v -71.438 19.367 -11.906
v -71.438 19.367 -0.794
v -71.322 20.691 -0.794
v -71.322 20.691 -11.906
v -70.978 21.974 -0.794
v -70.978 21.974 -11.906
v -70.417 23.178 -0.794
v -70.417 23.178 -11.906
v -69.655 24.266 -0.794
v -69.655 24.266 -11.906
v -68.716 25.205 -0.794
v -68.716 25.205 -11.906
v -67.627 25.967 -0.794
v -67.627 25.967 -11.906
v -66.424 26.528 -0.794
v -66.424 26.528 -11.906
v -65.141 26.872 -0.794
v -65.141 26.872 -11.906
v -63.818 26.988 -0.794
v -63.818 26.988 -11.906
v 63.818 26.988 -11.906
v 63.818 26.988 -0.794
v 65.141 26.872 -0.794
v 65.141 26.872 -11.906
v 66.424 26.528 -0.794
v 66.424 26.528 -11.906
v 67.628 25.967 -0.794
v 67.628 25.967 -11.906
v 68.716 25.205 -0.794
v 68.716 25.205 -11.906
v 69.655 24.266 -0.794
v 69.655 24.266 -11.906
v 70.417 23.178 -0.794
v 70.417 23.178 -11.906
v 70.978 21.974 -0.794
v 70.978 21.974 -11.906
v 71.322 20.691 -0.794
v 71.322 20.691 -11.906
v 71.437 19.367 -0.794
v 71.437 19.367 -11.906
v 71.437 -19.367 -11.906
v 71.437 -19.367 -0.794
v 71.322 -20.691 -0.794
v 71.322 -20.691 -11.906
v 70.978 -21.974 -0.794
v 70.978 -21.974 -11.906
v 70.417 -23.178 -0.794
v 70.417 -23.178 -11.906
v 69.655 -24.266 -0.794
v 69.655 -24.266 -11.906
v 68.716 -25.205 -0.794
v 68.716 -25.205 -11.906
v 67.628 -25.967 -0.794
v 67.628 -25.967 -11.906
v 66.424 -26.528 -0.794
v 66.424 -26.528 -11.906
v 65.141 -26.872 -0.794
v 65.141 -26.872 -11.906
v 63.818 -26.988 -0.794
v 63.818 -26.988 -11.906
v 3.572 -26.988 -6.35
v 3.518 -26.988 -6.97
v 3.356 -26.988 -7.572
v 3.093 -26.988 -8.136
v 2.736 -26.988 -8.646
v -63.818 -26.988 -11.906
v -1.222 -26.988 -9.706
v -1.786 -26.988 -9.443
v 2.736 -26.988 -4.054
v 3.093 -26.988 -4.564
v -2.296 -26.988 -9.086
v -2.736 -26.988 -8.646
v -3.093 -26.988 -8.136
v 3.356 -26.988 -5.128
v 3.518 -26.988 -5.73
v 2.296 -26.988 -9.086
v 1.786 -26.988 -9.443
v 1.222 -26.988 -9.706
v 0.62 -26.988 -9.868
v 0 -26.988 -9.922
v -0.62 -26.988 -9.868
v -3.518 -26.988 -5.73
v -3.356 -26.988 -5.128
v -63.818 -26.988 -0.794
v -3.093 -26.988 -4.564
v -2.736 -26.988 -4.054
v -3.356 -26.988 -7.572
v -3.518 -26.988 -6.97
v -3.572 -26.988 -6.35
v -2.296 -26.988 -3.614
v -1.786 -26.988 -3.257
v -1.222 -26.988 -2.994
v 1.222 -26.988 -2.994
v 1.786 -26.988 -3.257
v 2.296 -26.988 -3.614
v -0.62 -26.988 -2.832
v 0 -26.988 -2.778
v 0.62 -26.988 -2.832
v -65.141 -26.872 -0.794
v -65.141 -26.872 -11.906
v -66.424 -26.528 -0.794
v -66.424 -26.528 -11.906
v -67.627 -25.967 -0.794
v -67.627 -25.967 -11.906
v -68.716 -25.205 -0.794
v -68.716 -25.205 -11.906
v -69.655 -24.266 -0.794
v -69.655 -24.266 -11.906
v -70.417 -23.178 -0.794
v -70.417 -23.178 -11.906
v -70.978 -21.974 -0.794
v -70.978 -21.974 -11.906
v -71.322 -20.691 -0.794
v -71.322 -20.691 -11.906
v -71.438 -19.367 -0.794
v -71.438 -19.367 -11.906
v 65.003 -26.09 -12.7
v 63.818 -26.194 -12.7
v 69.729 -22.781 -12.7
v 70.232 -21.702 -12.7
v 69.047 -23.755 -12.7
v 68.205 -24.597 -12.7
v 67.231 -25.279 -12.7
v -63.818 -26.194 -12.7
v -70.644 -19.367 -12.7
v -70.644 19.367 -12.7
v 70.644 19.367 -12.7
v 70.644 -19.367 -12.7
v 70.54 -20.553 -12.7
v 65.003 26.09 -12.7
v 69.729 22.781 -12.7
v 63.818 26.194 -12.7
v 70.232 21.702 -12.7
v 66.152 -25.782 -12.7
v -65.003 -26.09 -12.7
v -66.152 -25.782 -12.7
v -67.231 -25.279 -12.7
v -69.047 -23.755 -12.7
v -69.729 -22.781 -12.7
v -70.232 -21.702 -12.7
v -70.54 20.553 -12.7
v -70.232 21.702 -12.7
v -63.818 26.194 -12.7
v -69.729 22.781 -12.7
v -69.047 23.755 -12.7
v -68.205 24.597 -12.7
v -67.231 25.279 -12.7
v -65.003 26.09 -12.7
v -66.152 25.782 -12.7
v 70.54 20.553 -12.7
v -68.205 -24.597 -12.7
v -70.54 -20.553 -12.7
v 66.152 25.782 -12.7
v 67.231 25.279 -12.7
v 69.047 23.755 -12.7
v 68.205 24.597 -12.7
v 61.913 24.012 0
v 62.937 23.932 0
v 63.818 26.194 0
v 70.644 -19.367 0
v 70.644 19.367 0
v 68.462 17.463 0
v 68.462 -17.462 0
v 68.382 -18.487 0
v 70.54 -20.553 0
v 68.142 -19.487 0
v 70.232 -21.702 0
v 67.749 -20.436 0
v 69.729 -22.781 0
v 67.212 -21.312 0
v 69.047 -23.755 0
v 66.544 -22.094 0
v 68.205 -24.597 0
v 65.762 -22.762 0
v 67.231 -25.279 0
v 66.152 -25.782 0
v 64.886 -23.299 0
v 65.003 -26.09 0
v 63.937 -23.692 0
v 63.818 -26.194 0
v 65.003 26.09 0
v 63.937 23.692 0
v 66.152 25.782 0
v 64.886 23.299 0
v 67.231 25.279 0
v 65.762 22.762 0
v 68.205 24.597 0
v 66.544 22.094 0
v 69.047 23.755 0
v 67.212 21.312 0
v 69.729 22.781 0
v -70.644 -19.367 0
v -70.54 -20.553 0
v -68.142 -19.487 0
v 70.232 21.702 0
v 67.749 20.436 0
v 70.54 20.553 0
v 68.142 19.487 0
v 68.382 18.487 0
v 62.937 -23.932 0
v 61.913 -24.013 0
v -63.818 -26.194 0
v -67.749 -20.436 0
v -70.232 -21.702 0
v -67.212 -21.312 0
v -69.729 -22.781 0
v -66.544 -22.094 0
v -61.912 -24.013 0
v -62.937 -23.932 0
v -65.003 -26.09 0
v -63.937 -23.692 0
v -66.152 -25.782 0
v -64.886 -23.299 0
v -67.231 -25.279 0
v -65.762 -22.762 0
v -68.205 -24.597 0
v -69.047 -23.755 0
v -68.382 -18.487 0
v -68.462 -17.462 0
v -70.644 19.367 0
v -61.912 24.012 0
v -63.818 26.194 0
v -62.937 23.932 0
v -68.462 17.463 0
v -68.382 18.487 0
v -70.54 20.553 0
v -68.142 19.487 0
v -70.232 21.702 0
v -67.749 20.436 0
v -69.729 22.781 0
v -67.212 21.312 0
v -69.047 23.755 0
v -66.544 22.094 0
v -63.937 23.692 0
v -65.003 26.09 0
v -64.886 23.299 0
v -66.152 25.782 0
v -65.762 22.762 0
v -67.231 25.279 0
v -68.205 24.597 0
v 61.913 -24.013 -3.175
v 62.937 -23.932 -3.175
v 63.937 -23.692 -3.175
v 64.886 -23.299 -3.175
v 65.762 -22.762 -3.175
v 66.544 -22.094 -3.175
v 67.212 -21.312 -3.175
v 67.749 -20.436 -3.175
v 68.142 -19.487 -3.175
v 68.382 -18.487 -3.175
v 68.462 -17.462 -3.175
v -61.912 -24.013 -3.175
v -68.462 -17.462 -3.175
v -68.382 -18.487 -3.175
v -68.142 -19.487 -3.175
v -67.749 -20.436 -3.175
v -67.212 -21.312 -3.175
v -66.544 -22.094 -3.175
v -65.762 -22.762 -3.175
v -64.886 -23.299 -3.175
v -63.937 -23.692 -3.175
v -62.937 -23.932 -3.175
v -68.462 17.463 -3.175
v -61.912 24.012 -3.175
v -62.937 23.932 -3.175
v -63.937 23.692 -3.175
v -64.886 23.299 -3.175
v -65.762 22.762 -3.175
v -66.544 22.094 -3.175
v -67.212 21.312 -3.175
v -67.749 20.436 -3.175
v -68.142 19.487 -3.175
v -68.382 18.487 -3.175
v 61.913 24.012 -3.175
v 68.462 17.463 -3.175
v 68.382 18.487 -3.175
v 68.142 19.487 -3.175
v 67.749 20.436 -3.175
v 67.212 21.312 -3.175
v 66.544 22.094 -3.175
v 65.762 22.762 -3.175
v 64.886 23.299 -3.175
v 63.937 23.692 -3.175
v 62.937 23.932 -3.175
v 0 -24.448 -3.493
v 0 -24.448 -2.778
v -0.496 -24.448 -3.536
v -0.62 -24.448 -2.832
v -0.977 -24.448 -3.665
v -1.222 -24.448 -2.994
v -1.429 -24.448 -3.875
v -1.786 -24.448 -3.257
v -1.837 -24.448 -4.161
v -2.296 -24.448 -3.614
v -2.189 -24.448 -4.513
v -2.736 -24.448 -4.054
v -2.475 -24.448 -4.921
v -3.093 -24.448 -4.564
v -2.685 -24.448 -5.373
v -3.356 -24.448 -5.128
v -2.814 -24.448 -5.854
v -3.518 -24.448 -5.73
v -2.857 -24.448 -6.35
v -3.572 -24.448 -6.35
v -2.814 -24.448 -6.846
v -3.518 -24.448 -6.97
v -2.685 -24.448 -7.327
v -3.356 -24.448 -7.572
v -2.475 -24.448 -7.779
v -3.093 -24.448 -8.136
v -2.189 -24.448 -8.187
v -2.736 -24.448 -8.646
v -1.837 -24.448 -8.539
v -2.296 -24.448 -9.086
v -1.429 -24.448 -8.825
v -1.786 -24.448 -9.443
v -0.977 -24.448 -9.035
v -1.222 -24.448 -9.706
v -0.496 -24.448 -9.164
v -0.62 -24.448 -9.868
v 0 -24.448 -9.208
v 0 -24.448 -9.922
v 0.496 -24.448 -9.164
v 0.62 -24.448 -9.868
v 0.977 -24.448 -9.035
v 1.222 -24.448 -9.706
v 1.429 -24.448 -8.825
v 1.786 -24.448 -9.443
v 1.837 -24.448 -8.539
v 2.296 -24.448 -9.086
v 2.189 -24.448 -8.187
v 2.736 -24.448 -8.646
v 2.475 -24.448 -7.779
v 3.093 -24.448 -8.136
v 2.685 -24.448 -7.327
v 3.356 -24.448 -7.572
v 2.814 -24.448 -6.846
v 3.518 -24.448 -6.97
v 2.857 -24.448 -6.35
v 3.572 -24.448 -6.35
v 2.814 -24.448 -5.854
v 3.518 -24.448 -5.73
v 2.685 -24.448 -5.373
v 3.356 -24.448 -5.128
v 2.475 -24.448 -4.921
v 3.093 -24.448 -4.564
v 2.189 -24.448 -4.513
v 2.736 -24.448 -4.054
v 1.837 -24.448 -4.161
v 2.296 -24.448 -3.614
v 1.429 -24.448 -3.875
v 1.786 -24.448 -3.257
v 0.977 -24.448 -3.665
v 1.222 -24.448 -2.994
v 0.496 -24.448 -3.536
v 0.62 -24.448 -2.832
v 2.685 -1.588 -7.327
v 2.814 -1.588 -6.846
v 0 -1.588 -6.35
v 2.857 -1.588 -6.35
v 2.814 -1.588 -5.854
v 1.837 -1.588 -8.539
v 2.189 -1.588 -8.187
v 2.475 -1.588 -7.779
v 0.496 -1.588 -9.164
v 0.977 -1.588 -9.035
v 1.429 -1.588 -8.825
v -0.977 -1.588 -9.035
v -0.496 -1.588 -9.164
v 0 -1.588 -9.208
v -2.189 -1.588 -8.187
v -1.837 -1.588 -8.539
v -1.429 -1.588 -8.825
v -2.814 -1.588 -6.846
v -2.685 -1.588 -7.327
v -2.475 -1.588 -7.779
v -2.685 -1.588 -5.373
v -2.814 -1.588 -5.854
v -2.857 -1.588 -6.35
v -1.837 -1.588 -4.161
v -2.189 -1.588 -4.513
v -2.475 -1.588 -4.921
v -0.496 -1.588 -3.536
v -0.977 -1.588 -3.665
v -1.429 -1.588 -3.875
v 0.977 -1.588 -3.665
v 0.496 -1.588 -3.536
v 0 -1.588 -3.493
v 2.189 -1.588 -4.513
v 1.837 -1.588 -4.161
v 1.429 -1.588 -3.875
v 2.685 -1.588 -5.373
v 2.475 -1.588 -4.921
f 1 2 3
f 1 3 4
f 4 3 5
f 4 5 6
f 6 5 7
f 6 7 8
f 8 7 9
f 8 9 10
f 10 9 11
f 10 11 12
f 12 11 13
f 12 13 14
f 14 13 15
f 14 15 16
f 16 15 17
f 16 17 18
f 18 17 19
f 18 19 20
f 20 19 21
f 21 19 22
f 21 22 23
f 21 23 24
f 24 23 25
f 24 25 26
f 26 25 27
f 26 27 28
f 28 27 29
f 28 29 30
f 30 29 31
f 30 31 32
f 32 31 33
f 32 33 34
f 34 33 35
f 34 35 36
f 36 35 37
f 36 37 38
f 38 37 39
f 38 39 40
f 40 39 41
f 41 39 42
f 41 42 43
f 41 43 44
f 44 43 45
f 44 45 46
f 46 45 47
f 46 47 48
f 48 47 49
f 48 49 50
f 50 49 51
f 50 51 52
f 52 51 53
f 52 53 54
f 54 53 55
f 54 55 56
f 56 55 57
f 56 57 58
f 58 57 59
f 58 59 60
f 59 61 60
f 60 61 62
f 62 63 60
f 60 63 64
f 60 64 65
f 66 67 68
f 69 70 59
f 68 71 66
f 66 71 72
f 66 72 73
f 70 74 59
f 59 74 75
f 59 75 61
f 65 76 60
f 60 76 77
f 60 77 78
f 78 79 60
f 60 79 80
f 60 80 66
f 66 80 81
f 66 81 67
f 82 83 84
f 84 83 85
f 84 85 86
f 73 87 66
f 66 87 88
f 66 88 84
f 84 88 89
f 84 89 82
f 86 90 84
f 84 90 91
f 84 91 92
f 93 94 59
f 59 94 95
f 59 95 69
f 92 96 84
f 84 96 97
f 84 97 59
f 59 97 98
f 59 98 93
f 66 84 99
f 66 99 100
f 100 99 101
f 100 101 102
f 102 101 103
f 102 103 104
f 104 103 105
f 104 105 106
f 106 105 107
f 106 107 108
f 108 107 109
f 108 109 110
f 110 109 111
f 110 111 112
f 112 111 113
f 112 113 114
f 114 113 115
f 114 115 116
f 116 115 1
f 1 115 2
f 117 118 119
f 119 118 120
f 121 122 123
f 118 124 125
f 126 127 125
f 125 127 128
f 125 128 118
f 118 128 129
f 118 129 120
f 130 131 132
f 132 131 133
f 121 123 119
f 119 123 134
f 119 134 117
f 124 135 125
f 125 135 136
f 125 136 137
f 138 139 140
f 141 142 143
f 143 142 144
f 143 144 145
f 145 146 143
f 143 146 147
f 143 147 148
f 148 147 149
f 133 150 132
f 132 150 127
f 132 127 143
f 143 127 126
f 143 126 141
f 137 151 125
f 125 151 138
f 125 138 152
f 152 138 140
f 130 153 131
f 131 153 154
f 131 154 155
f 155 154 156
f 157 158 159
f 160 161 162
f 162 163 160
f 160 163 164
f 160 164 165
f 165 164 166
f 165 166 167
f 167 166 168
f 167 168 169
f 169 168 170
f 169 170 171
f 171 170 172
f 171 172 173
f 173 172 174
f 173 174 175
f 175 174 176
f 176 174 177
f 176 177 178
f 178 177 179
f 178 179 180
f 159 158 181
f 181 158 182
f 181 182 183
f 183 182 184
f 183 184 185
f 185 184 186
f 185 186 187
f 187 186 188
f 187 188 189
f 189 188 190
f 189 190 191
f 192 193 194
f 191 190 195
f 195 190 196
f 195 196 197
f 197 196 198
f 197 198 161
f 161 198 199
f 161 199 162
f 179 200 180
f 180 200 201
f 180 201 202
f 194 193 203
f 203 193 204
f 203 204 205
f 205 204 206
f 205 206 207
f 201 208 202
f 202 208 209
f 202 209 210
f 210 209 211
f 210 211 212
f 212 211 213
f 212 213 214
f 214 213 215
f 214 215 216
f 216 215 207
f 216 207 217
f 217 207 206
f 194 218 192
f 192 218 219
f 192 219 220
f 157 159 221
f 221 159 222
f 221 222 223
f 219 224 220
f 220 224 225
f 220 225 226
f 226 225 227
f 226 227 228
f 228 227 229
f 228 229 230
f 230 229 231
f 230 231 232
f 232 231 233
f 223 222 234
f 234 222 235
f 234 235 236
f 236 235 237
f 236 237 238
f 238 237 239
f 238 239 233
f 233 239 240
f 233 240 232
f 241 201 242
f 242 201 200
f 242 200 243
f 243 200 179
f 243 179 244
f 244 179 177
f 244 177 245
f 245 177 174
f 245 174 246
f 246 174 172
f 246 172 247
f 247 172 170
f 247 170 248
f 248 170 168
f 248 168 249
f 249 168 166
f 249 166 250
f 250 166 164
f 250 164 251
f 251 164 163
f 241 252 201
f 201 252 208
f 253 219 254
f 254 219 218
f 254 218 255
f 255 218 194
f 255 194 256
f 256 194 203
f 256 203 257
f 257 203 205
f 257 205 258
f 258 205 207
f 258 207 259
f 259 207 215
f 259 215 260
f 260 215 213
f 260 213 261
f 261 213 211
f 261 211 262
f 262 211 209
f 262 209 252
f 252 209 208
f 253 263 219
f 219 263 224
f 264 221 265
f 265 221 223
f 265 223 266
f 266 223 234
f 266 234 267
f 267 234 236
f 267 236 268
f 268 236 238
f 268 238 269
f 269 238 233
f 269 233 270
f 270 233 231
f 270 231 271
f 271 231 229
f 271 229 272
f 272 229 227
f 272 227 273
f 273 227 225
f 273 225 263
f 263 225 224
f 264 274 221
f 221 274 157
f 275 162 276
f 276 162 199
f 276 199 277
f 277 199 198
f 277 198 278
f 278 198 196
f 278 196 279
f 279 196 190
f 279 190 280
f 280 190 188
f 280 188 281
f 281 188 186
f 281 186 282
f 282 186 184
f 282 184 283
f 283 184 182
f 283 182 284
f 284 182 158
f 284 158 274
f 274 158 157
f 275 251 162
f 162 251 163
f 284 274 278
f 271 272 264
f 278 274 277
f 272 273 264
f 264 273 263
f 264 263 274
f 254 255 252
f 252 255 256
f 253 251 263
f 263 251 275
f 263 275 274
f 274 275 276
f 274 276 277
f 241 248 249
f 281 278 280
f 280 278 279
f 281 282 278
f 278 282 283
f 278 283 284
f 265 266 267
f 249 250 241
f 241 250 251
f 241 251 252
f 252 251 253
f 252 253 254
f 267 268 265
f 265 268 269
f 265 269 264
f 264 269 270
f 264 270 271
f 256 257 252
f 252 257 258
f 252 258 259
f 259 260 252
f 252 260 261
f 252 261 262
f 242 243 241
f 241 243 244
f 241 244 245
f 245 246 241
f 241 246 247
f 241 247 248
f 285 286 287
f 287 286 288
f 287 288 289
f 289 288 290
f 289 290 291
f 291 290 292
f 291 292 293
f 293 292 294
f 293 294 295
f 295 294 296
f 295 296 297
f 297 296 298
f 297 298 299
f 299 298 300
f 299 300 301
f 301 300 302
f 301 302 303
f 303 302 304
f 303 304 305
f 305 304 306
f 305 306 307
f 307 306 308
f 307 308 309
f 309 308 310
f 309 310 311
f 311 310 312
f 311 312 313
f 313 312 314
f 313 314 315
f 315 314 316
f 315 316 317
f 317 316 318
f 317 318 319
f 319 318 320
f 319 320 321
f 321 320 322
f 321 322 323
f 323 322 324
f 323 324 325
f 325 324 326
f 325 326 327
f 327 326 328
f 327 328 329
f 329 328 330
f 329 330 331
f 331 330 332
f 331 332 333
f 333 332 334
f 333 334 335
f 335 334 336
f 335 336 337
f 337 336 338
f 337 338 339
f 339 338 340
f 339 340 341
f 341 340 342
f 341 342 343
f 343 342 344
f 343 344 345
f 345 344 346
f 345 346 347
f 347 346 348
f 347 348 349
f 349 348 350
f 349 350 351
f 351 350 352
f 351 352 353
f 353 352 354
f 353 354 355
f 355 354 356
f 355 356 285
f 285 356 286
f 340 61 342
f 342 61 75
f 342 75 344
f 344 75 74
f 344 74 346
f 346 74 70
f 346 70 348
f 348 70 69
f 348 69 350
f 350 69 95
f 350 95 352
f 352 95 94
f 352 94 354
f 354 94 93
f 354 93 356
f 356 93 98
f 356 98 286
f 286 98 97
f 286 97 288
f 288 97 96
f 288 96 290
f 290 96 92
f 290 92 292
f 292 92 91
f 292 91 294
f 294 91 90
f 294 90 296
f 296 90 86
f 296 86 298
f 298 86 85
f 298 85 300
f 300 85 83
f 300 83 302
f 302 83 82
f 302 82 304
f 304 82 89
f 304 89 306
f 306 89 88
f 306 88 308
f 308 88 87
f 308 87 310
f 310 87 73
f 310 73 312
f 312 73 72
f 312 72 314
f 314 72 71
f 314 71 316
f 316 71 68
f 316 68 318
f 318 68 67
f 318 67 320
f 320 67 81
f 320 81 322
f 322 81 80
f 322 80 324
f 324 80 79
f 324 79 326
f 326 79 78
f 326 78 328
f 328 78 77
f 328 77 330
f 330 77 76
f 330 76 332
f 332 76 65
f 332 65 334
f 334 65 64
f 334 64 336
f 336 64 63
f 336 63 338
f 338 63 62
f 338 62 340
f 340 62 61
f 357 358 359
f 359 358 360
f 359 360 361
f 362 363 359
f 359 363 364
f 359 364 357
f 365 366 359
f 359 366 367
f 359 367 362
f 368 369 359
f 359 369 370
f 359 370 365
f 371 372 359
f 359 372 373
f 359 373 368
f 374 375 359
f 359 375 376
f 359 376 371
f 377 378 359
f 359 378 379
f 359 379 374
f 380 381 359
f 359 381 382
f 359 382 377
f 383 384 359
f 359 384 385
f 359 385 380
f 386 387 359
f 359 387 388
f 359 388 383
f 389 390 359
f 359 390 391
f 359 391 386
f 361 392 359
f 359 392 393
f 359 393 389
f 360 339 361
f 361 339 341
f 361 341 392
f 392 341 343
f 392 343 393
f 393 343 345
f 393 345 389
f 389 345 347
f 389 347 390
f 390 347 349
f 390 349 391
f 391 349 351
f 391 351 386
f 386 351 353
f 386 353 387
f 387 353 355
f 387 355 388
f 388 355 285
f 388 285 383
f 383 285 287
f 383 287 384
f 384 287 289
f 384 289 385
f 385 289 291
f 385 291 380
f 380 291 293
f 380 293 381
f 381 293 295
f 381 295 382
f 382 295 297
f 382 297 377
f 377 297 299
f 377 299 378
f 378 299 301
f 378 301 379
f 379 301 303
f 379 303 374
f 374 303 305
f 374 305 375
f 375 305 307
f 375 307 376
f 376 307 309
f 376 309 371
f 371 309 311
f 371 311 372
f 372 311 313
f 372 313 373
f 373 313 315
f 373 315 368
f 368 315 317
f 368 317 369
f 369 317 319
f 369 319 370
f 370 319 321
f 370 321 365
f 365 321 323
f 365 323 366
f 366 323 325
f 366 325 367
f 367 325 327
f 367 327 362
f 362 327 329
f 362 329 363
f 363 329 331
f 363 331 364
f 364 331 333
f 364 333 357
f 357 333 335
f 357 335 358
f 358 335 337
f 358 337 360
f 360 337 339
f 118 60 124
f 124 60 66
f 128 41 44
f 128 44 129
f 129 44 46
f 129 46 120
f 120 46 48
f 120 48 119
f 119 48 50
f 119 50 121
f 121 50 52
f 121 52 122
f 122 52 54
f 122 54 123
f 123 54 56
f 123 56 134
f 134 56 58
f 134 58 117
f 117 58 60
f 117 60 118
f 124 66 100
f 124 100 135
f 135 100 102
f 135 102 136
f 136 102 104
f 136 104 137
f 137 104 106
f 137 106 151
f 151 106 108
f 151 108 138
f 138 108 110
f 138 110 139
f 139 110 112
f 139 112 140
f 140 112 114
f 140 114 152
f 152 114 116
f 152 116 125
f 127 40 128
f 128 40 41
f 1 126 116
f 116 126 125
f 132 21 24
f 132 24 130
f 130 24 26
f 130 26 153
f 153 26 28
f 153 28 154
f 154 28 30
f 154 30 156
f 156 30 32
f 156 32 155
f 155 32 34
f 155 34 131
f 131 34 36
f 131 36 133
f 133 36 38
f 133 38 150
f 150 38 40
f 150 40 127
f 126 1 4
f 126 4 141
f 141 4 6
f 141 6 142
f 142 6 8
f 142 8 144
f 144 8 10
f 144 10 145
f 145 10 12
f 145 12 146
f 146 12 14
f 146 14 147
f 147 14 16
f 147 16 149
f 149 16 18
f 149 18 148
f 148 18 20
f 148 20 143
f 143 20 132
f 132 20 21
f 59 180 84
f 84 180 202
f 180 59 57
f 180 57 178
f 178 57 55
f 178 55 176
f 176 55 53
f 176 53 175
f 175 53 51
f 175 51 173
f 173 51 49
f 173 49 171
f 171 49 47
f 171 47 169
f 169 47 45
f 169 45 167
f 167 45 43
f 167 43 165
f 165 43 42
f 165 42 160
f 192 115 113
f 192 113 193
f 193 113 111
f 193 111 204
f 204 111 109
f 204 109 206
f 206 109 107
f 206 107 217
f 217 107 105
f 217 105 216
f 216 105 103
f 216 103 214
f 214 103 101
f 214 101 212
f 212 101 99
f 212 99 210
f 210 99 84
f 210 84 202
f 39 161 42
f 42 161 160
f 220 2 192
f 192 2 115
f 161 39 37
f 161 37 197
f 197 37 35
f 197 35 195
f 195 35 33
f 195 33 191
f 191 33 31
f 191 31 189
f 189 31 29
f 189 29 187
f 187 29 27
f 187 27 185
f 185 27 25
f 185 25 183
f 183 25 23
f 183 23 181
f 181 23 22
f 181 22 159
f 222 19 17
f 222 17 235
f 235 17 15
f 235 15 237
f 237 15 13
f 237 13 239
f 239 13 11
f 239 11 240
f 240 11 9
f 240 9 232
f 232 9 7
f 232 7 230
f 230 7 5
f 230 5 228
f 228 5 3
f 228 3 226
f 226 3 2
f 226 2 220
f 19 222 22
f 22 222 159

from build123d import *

# Parameters (mm, degrees)
BOSS_EXTRUDE1_DEPTH = 12.7
CUT_EXTRUDE1_DEPTH  = 3.175
SKETCH3_R           = 2.8575
CUT_EXTRUDE2_DEPTH  = 25.4
SKETCH4_R           = 3.571875
CUT_EXTRUDE4_DEPTH  = 2.54
CHAMFER1_SIZE       = 0.79375


with BuildPart() as part:
    # Sketch1 → Boss-Extrude1 (new body)
    with BuildSketch(Plane.XY):
        with BuildLine():
            Line((71.4375, -19.3675), (71.4375, 19.3675))
            ThreePointArc((71.4375, 19.3675), (69.205653673, 24.755653673), (63.8175, 26.9875))
            Line((63.8175, 26.9875), (-63.8175, 26.9875))
            ThreePointArc((-63.8175, 26.9875), (-69.205653673, 24.755653673), (-71.4375, 19.3675))
            Line((-71.4375, 19.3675), (-71.4375, -19.3675))
            ThreePointArc((-71.4375, -19.3675), (-69.205653673, -24.755653673), (-63.8175, -26.9875))
            Line((-63.8175, -26.9875), (63.8175, -26.9875))
            ThreePointArc((63.8175, -26.9875), (69.205653673, -24.755653673), (71.4375, -19.3675))
        make_face()
    extrude(amount=-BOSS_EXTRUDE1_DEPTH)

    # Sketch2 → Cut-Extrude1 (cut)
    with BuildSketch(Plane.XY):
        with BuildLine():
            Line((68.4625, -17.4625), (68.4625, 17.4625))
            ThreePointArc((68.4625, 17.4625), (66.544049417, 22.094049417), (61.9125, 24.0125))
            Line((61.9125, 24.0125), (-61.9125, 24.0125))
            ThreePointArc((-61.9125, 24.0125), (-66.544049417, 22.094049417), (-68.4625, 17.4625))
            Line((-68.4625, 17.4625), (-68.4625, -17.4625))
            ThreePointArc((-68.4625, -17.4625), (-66.544049417, -22.094049417), (-61.9125, -24.0125))
            Line((-61.9125, -24.0125), (61.9125, -24.0125))
            ThreePointArc((61.9125, -24.0125), (66.544049417, -22.094049417), (68.4625, -17.4625))
        make_face()
    extrude(amount=-CUT_EXTRUDE1_DEPTH, mode=Mode.SUBTRACT)

    # Sketch3 → Cut-Extrude2 (cut)
    with BuildSketch(Plane.XZ.offset(26.9875)):
        with Locations((0, -6.35)):
            Circle(SKETCH3_R)
    extrude(amount=-CUT_EXTRUDE2_DEPTH, mode=Mode.SUBTRACT)

    # Sketch4 → Cut-Extrude4 (cut)
    with BuildSketch(Plane.XZ.offset(26.9875)):
        with Locations((0, -6.35)):
            Circle(SKETCH4_R)
    extrude(amount=-CUT_EXTRUDE4_DEPTH, mode=Mode.SUBTRACT)

    # Chamfer1
    chamfer1_edges = [part.edges().sort_by_distance(p)[0] for p in [
        (0, -26.9875, 0),
        (-69.205653673, -24.755653673, 0),
        (-71.4375, 0, 0),
        (-69.205653673, 24.755653673, 0),
        (-69.205653673, -24.755653673, -12.7),
        (0, -26.9875, -12.7),
        (69.205653673, -24.755653673, -12.7),
        (71.4375, 0, -12.7),
        (69.205653673, 24.755653673, -12.7),
        (0, 26.9875, -12.7),
        (-69.205653673, 24.755653673, -12.7),
        (0, 26.9875, 0),
        (-71.4375, 0, -12.7),
        (69.205653673, 24.755653673, 0),
        (71.4375, 0, 0),
        (69.205653673, -24.755653673, 0),
    ]]
    chamfer(chamfer1_edges, length=CHAMFER1_SIZE)


solid = part.part
